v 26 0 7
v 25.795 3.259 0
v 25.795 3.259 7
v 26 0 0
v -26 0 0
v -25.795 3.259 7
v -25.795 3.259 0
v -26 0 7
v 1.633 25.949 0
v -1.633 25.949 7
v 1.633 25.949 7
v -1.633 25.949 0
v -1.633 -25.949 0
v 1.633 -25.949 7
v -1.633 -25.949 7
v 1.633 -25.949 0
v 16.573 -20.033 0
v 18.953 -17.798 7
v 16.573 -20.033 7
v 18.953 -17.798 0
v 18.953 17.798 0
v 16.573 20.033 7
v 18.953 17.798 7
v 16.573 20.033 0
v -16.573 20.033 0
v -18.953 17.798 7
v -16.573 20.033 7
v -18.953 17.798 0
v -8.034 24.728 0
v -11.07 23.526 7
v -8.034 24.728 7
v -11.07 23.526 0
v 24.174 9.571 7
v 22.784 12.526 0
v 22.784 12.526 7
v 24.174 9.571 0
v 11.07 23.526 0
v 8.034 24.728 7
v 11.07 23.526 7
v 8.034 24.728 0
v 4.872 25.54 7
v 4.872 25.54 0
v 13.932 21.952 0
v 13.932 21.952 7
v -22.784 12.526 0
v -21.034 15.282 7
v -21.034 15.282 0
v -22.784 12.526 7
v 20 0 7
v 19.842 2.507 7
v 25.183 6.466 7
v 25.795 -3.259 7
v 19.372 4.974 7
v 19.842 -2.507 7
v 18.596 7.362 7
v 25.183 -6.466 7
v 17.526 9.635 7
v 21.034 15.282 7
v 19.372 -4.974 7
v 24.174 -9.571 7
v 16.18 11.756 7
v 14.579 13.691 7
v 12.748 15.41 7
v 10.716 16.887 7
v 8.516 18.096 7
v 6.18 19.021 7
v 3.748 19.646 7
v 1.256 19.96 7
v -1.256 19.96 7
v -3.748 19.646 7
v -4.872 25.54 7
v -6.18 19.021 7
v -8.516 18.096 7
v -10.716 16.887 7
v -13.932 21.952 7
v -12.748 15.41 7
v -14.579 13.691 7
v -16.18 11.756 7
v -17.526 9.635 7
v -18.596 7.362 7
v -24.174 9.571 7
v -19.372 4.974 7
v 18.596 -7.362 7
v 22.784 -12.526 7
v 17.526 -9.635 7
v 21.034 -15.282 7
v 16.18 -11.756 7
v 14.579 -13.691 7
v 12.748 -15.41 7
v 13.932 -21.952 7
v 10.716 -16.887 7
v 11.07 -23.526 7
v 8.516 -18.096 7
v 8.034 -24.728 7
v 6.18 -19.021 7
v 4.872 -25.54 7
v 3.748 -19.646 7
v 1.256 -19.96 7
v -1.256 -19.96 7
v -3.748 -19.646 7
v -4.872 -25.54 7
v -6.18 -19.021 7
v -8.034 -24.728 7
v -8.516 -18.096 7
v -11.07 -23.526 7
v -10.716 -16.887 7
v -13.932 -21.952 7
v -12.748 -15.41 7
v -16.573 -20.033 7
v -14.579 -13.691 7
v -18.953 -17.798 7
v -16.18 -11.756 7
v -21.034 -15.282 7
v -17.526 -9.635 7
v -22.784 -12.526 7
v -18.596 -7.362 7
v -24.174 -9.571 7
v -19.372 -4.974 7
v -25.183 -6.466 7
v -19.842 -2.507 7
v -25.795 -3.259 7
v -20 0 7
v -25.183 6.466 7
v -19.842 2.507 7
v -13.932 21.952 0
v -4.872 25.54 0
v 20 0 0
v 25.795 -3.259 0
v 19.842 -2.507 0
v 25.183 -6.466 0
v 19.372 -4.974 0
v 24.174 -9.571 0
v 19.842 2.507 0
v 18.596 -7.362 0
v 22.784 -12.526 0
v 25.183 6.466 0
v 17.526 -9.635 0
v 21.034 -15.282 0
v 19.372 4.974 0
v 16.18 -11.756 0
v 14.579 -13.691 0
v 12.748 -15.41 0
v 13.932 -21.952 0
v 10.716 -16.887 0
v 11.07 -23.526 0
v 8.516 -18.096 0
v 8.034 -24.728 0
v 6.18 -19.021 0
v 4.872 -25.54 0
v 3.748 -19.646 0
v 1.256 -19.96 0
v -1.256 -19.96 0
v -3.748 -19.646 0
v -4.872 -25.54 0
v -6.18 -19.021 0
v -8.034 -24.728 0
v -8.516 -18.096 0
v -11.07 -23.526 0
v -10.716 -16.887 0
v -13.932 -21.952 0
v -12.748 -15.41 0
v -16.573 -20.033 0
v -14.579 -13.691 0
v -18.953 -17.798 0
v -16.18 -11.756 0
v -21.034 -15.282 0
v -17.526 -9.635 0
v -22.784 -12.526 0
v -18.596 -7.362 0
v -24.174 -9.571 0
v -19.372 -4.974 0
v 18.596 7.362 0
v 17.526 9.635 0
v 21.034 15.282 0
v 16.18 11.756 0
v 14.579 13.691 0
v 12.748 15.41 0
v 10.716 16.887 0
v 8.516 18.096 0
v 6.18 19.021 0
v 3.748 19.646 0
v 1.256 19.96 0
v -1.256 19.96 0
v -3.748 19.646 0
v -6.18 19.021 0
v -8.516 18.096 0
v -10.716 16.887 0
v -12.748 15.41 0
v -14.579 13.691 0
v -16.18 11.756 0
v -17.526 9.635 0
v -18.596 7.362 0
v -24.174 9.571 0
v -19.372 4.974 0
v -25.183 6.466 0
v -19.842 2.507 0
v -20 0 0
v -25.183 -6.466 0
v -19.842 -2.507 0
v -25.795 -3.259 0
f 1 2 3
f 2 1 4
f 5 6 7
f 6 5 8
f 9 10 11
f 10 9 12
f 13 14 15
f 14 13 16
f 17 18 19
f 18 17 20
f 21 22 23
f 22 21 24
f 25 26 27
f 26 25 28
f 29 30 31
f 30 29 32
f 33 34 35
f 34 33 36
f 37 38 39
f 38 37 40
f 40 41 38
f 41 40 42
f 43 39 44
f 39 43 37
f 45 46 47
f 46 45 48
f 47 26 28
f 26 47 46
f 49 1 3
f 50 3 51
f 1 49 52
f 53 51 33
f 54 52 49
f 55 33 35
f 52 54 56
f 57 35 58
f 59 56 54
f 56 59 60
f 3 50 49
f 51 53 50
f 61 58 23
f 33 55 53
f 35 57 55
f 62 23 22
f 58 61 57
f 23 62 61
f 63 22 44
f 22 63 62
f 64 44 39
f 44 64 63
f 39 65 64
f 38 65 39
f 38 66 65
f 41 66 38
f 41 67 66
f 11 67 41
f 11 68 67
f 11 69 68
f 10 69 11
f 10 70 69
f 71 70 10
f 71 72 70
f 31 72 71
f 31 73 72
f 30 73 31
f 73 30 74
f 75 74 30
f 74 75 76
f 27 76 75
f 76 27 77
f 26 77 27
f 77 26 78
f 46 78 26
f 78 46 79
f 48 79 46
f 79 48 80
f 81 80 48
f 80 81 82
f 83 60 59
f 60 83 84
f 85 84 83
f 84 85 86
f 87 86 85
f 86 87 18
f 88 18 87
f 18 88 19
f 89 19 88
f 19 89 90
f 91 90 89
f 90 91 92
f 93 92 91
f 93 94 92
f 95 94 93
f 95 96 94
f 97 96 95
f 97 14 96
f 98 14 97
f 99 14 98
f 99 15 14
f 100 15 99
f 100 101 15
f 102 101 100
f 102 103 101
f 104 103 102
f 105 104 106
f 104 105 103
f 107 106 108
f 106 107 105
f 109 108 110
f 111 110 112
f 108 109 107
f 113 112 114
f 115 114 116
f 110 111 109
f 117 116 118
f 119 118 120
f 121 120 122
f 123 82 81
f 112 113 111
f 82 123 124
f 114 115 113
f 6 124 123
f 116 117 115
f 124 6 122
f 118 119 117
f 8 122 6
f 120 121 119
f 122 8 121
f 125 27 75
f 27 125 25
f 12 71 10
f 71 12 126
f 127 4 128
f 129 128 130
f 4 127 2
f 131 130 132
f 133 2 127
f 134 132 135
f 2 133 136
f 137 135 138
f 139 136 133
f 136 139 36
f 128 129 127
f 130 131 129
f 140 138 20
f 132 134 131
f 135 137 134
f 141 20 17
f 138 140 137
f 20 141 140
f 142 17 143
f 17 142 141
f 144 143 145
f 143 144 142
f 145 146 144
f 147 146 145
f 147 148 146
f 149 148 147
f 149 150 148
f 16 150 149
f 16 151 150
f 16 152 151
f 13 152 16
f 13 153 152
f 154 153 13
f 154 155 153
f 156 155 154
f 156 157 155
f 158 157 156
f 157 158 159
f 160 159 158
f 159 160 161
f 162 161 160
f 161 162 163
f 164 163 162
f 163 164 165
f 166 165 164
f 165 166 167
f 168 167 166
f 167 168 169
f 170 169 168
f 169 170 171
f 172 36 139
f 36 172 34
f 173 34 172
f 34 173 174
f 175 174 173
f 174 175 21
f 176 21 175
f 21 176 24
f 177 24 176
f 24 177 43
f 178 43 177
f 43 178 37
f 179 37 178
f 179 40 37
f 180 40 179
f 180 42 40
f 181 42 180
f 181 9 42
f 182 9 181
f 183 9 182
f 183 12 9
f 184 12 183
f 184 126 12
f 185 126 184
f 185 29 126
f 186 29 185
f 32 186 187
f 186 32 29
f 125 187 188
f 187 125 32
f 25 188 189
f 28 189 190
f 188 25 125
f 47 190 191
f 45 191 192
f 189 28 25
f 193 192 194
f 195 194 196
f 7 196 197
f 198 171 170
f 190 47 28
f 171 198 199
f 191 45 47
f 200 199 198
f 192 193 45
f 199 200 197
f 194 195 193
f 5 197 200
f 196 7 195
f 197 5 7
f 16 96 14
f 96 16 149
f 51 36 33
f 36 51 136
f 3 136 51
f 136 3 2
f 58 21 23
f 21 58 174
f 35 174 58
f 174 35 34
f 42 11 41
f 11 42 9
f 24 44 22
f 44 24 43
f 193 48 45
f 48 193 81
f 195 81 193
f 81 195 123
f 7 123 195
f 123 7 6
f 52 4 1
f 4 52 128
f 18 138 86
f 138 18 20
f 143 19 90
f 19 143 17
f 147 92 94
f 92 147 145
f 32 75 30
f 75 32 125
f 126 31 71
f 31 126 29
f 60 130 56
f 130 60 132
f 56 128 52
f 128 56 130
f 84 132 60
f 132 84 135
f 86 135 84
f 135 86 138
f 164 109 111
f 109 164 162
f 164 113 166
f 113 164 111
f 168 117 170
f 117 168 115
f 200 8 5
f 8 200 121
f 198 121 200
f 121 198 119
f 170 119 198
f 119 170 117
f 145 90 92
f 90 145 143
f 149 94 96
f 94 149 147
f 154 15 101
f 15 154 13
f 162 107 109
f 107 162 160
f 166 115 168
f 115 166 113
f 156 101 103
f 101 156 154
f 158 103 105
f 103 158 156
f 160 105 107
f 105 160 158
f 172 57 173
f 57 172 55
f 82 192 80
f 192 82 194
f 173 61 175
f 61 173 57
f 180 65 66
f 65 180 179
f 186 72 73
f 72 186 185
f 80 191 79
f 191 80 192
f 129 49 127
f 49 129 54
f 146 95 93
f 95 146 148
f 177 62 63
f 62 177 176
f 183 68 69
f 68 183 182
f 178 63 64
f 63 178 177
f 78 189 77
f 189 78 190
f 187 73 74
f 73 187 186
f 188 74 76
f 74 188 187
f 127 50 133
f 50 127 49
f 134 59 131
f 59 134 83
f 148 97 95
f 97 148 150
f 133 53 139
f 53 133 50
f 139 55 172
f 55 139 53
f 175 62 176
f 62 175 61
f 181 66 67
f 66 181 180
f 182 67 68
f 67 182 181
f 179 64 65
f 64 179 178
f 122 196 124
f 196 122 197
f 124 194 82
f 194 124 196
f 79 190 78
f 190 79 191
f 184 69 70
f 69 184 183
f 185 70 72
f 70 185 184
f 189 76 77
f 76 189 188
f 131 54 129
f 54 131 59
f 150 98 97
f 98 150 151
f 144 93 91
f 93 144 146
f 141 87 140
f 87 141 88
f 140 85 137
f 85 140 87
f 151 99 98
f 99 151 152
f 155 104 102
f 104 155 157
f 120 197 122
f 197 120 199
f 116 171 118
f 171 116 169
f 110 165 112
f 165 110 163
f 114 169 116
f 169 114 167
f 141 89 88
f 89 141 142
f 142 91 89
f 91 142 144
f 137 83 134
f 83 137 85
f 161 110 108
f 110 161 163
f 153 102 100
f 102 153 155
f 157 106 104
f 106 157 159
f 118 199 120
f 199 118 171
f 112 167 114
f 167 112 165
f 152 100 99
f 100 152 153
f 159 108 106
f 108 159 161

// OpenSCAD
$fn = 50;


difference() {
	union() {
		translate(v = [0, 0, 0]) {
			rotate(a = [0, 0, 0]) {
				cylinder(h = 7, r = 26.0000000000);
			}
		}
	}
	union() {
		translate(v = [0, 0, 0]) {
			rotate(a = [0, 0, 0]) {
				cylinder(h = 7, r = 20.0000000000);
			}
		}
	}
}
